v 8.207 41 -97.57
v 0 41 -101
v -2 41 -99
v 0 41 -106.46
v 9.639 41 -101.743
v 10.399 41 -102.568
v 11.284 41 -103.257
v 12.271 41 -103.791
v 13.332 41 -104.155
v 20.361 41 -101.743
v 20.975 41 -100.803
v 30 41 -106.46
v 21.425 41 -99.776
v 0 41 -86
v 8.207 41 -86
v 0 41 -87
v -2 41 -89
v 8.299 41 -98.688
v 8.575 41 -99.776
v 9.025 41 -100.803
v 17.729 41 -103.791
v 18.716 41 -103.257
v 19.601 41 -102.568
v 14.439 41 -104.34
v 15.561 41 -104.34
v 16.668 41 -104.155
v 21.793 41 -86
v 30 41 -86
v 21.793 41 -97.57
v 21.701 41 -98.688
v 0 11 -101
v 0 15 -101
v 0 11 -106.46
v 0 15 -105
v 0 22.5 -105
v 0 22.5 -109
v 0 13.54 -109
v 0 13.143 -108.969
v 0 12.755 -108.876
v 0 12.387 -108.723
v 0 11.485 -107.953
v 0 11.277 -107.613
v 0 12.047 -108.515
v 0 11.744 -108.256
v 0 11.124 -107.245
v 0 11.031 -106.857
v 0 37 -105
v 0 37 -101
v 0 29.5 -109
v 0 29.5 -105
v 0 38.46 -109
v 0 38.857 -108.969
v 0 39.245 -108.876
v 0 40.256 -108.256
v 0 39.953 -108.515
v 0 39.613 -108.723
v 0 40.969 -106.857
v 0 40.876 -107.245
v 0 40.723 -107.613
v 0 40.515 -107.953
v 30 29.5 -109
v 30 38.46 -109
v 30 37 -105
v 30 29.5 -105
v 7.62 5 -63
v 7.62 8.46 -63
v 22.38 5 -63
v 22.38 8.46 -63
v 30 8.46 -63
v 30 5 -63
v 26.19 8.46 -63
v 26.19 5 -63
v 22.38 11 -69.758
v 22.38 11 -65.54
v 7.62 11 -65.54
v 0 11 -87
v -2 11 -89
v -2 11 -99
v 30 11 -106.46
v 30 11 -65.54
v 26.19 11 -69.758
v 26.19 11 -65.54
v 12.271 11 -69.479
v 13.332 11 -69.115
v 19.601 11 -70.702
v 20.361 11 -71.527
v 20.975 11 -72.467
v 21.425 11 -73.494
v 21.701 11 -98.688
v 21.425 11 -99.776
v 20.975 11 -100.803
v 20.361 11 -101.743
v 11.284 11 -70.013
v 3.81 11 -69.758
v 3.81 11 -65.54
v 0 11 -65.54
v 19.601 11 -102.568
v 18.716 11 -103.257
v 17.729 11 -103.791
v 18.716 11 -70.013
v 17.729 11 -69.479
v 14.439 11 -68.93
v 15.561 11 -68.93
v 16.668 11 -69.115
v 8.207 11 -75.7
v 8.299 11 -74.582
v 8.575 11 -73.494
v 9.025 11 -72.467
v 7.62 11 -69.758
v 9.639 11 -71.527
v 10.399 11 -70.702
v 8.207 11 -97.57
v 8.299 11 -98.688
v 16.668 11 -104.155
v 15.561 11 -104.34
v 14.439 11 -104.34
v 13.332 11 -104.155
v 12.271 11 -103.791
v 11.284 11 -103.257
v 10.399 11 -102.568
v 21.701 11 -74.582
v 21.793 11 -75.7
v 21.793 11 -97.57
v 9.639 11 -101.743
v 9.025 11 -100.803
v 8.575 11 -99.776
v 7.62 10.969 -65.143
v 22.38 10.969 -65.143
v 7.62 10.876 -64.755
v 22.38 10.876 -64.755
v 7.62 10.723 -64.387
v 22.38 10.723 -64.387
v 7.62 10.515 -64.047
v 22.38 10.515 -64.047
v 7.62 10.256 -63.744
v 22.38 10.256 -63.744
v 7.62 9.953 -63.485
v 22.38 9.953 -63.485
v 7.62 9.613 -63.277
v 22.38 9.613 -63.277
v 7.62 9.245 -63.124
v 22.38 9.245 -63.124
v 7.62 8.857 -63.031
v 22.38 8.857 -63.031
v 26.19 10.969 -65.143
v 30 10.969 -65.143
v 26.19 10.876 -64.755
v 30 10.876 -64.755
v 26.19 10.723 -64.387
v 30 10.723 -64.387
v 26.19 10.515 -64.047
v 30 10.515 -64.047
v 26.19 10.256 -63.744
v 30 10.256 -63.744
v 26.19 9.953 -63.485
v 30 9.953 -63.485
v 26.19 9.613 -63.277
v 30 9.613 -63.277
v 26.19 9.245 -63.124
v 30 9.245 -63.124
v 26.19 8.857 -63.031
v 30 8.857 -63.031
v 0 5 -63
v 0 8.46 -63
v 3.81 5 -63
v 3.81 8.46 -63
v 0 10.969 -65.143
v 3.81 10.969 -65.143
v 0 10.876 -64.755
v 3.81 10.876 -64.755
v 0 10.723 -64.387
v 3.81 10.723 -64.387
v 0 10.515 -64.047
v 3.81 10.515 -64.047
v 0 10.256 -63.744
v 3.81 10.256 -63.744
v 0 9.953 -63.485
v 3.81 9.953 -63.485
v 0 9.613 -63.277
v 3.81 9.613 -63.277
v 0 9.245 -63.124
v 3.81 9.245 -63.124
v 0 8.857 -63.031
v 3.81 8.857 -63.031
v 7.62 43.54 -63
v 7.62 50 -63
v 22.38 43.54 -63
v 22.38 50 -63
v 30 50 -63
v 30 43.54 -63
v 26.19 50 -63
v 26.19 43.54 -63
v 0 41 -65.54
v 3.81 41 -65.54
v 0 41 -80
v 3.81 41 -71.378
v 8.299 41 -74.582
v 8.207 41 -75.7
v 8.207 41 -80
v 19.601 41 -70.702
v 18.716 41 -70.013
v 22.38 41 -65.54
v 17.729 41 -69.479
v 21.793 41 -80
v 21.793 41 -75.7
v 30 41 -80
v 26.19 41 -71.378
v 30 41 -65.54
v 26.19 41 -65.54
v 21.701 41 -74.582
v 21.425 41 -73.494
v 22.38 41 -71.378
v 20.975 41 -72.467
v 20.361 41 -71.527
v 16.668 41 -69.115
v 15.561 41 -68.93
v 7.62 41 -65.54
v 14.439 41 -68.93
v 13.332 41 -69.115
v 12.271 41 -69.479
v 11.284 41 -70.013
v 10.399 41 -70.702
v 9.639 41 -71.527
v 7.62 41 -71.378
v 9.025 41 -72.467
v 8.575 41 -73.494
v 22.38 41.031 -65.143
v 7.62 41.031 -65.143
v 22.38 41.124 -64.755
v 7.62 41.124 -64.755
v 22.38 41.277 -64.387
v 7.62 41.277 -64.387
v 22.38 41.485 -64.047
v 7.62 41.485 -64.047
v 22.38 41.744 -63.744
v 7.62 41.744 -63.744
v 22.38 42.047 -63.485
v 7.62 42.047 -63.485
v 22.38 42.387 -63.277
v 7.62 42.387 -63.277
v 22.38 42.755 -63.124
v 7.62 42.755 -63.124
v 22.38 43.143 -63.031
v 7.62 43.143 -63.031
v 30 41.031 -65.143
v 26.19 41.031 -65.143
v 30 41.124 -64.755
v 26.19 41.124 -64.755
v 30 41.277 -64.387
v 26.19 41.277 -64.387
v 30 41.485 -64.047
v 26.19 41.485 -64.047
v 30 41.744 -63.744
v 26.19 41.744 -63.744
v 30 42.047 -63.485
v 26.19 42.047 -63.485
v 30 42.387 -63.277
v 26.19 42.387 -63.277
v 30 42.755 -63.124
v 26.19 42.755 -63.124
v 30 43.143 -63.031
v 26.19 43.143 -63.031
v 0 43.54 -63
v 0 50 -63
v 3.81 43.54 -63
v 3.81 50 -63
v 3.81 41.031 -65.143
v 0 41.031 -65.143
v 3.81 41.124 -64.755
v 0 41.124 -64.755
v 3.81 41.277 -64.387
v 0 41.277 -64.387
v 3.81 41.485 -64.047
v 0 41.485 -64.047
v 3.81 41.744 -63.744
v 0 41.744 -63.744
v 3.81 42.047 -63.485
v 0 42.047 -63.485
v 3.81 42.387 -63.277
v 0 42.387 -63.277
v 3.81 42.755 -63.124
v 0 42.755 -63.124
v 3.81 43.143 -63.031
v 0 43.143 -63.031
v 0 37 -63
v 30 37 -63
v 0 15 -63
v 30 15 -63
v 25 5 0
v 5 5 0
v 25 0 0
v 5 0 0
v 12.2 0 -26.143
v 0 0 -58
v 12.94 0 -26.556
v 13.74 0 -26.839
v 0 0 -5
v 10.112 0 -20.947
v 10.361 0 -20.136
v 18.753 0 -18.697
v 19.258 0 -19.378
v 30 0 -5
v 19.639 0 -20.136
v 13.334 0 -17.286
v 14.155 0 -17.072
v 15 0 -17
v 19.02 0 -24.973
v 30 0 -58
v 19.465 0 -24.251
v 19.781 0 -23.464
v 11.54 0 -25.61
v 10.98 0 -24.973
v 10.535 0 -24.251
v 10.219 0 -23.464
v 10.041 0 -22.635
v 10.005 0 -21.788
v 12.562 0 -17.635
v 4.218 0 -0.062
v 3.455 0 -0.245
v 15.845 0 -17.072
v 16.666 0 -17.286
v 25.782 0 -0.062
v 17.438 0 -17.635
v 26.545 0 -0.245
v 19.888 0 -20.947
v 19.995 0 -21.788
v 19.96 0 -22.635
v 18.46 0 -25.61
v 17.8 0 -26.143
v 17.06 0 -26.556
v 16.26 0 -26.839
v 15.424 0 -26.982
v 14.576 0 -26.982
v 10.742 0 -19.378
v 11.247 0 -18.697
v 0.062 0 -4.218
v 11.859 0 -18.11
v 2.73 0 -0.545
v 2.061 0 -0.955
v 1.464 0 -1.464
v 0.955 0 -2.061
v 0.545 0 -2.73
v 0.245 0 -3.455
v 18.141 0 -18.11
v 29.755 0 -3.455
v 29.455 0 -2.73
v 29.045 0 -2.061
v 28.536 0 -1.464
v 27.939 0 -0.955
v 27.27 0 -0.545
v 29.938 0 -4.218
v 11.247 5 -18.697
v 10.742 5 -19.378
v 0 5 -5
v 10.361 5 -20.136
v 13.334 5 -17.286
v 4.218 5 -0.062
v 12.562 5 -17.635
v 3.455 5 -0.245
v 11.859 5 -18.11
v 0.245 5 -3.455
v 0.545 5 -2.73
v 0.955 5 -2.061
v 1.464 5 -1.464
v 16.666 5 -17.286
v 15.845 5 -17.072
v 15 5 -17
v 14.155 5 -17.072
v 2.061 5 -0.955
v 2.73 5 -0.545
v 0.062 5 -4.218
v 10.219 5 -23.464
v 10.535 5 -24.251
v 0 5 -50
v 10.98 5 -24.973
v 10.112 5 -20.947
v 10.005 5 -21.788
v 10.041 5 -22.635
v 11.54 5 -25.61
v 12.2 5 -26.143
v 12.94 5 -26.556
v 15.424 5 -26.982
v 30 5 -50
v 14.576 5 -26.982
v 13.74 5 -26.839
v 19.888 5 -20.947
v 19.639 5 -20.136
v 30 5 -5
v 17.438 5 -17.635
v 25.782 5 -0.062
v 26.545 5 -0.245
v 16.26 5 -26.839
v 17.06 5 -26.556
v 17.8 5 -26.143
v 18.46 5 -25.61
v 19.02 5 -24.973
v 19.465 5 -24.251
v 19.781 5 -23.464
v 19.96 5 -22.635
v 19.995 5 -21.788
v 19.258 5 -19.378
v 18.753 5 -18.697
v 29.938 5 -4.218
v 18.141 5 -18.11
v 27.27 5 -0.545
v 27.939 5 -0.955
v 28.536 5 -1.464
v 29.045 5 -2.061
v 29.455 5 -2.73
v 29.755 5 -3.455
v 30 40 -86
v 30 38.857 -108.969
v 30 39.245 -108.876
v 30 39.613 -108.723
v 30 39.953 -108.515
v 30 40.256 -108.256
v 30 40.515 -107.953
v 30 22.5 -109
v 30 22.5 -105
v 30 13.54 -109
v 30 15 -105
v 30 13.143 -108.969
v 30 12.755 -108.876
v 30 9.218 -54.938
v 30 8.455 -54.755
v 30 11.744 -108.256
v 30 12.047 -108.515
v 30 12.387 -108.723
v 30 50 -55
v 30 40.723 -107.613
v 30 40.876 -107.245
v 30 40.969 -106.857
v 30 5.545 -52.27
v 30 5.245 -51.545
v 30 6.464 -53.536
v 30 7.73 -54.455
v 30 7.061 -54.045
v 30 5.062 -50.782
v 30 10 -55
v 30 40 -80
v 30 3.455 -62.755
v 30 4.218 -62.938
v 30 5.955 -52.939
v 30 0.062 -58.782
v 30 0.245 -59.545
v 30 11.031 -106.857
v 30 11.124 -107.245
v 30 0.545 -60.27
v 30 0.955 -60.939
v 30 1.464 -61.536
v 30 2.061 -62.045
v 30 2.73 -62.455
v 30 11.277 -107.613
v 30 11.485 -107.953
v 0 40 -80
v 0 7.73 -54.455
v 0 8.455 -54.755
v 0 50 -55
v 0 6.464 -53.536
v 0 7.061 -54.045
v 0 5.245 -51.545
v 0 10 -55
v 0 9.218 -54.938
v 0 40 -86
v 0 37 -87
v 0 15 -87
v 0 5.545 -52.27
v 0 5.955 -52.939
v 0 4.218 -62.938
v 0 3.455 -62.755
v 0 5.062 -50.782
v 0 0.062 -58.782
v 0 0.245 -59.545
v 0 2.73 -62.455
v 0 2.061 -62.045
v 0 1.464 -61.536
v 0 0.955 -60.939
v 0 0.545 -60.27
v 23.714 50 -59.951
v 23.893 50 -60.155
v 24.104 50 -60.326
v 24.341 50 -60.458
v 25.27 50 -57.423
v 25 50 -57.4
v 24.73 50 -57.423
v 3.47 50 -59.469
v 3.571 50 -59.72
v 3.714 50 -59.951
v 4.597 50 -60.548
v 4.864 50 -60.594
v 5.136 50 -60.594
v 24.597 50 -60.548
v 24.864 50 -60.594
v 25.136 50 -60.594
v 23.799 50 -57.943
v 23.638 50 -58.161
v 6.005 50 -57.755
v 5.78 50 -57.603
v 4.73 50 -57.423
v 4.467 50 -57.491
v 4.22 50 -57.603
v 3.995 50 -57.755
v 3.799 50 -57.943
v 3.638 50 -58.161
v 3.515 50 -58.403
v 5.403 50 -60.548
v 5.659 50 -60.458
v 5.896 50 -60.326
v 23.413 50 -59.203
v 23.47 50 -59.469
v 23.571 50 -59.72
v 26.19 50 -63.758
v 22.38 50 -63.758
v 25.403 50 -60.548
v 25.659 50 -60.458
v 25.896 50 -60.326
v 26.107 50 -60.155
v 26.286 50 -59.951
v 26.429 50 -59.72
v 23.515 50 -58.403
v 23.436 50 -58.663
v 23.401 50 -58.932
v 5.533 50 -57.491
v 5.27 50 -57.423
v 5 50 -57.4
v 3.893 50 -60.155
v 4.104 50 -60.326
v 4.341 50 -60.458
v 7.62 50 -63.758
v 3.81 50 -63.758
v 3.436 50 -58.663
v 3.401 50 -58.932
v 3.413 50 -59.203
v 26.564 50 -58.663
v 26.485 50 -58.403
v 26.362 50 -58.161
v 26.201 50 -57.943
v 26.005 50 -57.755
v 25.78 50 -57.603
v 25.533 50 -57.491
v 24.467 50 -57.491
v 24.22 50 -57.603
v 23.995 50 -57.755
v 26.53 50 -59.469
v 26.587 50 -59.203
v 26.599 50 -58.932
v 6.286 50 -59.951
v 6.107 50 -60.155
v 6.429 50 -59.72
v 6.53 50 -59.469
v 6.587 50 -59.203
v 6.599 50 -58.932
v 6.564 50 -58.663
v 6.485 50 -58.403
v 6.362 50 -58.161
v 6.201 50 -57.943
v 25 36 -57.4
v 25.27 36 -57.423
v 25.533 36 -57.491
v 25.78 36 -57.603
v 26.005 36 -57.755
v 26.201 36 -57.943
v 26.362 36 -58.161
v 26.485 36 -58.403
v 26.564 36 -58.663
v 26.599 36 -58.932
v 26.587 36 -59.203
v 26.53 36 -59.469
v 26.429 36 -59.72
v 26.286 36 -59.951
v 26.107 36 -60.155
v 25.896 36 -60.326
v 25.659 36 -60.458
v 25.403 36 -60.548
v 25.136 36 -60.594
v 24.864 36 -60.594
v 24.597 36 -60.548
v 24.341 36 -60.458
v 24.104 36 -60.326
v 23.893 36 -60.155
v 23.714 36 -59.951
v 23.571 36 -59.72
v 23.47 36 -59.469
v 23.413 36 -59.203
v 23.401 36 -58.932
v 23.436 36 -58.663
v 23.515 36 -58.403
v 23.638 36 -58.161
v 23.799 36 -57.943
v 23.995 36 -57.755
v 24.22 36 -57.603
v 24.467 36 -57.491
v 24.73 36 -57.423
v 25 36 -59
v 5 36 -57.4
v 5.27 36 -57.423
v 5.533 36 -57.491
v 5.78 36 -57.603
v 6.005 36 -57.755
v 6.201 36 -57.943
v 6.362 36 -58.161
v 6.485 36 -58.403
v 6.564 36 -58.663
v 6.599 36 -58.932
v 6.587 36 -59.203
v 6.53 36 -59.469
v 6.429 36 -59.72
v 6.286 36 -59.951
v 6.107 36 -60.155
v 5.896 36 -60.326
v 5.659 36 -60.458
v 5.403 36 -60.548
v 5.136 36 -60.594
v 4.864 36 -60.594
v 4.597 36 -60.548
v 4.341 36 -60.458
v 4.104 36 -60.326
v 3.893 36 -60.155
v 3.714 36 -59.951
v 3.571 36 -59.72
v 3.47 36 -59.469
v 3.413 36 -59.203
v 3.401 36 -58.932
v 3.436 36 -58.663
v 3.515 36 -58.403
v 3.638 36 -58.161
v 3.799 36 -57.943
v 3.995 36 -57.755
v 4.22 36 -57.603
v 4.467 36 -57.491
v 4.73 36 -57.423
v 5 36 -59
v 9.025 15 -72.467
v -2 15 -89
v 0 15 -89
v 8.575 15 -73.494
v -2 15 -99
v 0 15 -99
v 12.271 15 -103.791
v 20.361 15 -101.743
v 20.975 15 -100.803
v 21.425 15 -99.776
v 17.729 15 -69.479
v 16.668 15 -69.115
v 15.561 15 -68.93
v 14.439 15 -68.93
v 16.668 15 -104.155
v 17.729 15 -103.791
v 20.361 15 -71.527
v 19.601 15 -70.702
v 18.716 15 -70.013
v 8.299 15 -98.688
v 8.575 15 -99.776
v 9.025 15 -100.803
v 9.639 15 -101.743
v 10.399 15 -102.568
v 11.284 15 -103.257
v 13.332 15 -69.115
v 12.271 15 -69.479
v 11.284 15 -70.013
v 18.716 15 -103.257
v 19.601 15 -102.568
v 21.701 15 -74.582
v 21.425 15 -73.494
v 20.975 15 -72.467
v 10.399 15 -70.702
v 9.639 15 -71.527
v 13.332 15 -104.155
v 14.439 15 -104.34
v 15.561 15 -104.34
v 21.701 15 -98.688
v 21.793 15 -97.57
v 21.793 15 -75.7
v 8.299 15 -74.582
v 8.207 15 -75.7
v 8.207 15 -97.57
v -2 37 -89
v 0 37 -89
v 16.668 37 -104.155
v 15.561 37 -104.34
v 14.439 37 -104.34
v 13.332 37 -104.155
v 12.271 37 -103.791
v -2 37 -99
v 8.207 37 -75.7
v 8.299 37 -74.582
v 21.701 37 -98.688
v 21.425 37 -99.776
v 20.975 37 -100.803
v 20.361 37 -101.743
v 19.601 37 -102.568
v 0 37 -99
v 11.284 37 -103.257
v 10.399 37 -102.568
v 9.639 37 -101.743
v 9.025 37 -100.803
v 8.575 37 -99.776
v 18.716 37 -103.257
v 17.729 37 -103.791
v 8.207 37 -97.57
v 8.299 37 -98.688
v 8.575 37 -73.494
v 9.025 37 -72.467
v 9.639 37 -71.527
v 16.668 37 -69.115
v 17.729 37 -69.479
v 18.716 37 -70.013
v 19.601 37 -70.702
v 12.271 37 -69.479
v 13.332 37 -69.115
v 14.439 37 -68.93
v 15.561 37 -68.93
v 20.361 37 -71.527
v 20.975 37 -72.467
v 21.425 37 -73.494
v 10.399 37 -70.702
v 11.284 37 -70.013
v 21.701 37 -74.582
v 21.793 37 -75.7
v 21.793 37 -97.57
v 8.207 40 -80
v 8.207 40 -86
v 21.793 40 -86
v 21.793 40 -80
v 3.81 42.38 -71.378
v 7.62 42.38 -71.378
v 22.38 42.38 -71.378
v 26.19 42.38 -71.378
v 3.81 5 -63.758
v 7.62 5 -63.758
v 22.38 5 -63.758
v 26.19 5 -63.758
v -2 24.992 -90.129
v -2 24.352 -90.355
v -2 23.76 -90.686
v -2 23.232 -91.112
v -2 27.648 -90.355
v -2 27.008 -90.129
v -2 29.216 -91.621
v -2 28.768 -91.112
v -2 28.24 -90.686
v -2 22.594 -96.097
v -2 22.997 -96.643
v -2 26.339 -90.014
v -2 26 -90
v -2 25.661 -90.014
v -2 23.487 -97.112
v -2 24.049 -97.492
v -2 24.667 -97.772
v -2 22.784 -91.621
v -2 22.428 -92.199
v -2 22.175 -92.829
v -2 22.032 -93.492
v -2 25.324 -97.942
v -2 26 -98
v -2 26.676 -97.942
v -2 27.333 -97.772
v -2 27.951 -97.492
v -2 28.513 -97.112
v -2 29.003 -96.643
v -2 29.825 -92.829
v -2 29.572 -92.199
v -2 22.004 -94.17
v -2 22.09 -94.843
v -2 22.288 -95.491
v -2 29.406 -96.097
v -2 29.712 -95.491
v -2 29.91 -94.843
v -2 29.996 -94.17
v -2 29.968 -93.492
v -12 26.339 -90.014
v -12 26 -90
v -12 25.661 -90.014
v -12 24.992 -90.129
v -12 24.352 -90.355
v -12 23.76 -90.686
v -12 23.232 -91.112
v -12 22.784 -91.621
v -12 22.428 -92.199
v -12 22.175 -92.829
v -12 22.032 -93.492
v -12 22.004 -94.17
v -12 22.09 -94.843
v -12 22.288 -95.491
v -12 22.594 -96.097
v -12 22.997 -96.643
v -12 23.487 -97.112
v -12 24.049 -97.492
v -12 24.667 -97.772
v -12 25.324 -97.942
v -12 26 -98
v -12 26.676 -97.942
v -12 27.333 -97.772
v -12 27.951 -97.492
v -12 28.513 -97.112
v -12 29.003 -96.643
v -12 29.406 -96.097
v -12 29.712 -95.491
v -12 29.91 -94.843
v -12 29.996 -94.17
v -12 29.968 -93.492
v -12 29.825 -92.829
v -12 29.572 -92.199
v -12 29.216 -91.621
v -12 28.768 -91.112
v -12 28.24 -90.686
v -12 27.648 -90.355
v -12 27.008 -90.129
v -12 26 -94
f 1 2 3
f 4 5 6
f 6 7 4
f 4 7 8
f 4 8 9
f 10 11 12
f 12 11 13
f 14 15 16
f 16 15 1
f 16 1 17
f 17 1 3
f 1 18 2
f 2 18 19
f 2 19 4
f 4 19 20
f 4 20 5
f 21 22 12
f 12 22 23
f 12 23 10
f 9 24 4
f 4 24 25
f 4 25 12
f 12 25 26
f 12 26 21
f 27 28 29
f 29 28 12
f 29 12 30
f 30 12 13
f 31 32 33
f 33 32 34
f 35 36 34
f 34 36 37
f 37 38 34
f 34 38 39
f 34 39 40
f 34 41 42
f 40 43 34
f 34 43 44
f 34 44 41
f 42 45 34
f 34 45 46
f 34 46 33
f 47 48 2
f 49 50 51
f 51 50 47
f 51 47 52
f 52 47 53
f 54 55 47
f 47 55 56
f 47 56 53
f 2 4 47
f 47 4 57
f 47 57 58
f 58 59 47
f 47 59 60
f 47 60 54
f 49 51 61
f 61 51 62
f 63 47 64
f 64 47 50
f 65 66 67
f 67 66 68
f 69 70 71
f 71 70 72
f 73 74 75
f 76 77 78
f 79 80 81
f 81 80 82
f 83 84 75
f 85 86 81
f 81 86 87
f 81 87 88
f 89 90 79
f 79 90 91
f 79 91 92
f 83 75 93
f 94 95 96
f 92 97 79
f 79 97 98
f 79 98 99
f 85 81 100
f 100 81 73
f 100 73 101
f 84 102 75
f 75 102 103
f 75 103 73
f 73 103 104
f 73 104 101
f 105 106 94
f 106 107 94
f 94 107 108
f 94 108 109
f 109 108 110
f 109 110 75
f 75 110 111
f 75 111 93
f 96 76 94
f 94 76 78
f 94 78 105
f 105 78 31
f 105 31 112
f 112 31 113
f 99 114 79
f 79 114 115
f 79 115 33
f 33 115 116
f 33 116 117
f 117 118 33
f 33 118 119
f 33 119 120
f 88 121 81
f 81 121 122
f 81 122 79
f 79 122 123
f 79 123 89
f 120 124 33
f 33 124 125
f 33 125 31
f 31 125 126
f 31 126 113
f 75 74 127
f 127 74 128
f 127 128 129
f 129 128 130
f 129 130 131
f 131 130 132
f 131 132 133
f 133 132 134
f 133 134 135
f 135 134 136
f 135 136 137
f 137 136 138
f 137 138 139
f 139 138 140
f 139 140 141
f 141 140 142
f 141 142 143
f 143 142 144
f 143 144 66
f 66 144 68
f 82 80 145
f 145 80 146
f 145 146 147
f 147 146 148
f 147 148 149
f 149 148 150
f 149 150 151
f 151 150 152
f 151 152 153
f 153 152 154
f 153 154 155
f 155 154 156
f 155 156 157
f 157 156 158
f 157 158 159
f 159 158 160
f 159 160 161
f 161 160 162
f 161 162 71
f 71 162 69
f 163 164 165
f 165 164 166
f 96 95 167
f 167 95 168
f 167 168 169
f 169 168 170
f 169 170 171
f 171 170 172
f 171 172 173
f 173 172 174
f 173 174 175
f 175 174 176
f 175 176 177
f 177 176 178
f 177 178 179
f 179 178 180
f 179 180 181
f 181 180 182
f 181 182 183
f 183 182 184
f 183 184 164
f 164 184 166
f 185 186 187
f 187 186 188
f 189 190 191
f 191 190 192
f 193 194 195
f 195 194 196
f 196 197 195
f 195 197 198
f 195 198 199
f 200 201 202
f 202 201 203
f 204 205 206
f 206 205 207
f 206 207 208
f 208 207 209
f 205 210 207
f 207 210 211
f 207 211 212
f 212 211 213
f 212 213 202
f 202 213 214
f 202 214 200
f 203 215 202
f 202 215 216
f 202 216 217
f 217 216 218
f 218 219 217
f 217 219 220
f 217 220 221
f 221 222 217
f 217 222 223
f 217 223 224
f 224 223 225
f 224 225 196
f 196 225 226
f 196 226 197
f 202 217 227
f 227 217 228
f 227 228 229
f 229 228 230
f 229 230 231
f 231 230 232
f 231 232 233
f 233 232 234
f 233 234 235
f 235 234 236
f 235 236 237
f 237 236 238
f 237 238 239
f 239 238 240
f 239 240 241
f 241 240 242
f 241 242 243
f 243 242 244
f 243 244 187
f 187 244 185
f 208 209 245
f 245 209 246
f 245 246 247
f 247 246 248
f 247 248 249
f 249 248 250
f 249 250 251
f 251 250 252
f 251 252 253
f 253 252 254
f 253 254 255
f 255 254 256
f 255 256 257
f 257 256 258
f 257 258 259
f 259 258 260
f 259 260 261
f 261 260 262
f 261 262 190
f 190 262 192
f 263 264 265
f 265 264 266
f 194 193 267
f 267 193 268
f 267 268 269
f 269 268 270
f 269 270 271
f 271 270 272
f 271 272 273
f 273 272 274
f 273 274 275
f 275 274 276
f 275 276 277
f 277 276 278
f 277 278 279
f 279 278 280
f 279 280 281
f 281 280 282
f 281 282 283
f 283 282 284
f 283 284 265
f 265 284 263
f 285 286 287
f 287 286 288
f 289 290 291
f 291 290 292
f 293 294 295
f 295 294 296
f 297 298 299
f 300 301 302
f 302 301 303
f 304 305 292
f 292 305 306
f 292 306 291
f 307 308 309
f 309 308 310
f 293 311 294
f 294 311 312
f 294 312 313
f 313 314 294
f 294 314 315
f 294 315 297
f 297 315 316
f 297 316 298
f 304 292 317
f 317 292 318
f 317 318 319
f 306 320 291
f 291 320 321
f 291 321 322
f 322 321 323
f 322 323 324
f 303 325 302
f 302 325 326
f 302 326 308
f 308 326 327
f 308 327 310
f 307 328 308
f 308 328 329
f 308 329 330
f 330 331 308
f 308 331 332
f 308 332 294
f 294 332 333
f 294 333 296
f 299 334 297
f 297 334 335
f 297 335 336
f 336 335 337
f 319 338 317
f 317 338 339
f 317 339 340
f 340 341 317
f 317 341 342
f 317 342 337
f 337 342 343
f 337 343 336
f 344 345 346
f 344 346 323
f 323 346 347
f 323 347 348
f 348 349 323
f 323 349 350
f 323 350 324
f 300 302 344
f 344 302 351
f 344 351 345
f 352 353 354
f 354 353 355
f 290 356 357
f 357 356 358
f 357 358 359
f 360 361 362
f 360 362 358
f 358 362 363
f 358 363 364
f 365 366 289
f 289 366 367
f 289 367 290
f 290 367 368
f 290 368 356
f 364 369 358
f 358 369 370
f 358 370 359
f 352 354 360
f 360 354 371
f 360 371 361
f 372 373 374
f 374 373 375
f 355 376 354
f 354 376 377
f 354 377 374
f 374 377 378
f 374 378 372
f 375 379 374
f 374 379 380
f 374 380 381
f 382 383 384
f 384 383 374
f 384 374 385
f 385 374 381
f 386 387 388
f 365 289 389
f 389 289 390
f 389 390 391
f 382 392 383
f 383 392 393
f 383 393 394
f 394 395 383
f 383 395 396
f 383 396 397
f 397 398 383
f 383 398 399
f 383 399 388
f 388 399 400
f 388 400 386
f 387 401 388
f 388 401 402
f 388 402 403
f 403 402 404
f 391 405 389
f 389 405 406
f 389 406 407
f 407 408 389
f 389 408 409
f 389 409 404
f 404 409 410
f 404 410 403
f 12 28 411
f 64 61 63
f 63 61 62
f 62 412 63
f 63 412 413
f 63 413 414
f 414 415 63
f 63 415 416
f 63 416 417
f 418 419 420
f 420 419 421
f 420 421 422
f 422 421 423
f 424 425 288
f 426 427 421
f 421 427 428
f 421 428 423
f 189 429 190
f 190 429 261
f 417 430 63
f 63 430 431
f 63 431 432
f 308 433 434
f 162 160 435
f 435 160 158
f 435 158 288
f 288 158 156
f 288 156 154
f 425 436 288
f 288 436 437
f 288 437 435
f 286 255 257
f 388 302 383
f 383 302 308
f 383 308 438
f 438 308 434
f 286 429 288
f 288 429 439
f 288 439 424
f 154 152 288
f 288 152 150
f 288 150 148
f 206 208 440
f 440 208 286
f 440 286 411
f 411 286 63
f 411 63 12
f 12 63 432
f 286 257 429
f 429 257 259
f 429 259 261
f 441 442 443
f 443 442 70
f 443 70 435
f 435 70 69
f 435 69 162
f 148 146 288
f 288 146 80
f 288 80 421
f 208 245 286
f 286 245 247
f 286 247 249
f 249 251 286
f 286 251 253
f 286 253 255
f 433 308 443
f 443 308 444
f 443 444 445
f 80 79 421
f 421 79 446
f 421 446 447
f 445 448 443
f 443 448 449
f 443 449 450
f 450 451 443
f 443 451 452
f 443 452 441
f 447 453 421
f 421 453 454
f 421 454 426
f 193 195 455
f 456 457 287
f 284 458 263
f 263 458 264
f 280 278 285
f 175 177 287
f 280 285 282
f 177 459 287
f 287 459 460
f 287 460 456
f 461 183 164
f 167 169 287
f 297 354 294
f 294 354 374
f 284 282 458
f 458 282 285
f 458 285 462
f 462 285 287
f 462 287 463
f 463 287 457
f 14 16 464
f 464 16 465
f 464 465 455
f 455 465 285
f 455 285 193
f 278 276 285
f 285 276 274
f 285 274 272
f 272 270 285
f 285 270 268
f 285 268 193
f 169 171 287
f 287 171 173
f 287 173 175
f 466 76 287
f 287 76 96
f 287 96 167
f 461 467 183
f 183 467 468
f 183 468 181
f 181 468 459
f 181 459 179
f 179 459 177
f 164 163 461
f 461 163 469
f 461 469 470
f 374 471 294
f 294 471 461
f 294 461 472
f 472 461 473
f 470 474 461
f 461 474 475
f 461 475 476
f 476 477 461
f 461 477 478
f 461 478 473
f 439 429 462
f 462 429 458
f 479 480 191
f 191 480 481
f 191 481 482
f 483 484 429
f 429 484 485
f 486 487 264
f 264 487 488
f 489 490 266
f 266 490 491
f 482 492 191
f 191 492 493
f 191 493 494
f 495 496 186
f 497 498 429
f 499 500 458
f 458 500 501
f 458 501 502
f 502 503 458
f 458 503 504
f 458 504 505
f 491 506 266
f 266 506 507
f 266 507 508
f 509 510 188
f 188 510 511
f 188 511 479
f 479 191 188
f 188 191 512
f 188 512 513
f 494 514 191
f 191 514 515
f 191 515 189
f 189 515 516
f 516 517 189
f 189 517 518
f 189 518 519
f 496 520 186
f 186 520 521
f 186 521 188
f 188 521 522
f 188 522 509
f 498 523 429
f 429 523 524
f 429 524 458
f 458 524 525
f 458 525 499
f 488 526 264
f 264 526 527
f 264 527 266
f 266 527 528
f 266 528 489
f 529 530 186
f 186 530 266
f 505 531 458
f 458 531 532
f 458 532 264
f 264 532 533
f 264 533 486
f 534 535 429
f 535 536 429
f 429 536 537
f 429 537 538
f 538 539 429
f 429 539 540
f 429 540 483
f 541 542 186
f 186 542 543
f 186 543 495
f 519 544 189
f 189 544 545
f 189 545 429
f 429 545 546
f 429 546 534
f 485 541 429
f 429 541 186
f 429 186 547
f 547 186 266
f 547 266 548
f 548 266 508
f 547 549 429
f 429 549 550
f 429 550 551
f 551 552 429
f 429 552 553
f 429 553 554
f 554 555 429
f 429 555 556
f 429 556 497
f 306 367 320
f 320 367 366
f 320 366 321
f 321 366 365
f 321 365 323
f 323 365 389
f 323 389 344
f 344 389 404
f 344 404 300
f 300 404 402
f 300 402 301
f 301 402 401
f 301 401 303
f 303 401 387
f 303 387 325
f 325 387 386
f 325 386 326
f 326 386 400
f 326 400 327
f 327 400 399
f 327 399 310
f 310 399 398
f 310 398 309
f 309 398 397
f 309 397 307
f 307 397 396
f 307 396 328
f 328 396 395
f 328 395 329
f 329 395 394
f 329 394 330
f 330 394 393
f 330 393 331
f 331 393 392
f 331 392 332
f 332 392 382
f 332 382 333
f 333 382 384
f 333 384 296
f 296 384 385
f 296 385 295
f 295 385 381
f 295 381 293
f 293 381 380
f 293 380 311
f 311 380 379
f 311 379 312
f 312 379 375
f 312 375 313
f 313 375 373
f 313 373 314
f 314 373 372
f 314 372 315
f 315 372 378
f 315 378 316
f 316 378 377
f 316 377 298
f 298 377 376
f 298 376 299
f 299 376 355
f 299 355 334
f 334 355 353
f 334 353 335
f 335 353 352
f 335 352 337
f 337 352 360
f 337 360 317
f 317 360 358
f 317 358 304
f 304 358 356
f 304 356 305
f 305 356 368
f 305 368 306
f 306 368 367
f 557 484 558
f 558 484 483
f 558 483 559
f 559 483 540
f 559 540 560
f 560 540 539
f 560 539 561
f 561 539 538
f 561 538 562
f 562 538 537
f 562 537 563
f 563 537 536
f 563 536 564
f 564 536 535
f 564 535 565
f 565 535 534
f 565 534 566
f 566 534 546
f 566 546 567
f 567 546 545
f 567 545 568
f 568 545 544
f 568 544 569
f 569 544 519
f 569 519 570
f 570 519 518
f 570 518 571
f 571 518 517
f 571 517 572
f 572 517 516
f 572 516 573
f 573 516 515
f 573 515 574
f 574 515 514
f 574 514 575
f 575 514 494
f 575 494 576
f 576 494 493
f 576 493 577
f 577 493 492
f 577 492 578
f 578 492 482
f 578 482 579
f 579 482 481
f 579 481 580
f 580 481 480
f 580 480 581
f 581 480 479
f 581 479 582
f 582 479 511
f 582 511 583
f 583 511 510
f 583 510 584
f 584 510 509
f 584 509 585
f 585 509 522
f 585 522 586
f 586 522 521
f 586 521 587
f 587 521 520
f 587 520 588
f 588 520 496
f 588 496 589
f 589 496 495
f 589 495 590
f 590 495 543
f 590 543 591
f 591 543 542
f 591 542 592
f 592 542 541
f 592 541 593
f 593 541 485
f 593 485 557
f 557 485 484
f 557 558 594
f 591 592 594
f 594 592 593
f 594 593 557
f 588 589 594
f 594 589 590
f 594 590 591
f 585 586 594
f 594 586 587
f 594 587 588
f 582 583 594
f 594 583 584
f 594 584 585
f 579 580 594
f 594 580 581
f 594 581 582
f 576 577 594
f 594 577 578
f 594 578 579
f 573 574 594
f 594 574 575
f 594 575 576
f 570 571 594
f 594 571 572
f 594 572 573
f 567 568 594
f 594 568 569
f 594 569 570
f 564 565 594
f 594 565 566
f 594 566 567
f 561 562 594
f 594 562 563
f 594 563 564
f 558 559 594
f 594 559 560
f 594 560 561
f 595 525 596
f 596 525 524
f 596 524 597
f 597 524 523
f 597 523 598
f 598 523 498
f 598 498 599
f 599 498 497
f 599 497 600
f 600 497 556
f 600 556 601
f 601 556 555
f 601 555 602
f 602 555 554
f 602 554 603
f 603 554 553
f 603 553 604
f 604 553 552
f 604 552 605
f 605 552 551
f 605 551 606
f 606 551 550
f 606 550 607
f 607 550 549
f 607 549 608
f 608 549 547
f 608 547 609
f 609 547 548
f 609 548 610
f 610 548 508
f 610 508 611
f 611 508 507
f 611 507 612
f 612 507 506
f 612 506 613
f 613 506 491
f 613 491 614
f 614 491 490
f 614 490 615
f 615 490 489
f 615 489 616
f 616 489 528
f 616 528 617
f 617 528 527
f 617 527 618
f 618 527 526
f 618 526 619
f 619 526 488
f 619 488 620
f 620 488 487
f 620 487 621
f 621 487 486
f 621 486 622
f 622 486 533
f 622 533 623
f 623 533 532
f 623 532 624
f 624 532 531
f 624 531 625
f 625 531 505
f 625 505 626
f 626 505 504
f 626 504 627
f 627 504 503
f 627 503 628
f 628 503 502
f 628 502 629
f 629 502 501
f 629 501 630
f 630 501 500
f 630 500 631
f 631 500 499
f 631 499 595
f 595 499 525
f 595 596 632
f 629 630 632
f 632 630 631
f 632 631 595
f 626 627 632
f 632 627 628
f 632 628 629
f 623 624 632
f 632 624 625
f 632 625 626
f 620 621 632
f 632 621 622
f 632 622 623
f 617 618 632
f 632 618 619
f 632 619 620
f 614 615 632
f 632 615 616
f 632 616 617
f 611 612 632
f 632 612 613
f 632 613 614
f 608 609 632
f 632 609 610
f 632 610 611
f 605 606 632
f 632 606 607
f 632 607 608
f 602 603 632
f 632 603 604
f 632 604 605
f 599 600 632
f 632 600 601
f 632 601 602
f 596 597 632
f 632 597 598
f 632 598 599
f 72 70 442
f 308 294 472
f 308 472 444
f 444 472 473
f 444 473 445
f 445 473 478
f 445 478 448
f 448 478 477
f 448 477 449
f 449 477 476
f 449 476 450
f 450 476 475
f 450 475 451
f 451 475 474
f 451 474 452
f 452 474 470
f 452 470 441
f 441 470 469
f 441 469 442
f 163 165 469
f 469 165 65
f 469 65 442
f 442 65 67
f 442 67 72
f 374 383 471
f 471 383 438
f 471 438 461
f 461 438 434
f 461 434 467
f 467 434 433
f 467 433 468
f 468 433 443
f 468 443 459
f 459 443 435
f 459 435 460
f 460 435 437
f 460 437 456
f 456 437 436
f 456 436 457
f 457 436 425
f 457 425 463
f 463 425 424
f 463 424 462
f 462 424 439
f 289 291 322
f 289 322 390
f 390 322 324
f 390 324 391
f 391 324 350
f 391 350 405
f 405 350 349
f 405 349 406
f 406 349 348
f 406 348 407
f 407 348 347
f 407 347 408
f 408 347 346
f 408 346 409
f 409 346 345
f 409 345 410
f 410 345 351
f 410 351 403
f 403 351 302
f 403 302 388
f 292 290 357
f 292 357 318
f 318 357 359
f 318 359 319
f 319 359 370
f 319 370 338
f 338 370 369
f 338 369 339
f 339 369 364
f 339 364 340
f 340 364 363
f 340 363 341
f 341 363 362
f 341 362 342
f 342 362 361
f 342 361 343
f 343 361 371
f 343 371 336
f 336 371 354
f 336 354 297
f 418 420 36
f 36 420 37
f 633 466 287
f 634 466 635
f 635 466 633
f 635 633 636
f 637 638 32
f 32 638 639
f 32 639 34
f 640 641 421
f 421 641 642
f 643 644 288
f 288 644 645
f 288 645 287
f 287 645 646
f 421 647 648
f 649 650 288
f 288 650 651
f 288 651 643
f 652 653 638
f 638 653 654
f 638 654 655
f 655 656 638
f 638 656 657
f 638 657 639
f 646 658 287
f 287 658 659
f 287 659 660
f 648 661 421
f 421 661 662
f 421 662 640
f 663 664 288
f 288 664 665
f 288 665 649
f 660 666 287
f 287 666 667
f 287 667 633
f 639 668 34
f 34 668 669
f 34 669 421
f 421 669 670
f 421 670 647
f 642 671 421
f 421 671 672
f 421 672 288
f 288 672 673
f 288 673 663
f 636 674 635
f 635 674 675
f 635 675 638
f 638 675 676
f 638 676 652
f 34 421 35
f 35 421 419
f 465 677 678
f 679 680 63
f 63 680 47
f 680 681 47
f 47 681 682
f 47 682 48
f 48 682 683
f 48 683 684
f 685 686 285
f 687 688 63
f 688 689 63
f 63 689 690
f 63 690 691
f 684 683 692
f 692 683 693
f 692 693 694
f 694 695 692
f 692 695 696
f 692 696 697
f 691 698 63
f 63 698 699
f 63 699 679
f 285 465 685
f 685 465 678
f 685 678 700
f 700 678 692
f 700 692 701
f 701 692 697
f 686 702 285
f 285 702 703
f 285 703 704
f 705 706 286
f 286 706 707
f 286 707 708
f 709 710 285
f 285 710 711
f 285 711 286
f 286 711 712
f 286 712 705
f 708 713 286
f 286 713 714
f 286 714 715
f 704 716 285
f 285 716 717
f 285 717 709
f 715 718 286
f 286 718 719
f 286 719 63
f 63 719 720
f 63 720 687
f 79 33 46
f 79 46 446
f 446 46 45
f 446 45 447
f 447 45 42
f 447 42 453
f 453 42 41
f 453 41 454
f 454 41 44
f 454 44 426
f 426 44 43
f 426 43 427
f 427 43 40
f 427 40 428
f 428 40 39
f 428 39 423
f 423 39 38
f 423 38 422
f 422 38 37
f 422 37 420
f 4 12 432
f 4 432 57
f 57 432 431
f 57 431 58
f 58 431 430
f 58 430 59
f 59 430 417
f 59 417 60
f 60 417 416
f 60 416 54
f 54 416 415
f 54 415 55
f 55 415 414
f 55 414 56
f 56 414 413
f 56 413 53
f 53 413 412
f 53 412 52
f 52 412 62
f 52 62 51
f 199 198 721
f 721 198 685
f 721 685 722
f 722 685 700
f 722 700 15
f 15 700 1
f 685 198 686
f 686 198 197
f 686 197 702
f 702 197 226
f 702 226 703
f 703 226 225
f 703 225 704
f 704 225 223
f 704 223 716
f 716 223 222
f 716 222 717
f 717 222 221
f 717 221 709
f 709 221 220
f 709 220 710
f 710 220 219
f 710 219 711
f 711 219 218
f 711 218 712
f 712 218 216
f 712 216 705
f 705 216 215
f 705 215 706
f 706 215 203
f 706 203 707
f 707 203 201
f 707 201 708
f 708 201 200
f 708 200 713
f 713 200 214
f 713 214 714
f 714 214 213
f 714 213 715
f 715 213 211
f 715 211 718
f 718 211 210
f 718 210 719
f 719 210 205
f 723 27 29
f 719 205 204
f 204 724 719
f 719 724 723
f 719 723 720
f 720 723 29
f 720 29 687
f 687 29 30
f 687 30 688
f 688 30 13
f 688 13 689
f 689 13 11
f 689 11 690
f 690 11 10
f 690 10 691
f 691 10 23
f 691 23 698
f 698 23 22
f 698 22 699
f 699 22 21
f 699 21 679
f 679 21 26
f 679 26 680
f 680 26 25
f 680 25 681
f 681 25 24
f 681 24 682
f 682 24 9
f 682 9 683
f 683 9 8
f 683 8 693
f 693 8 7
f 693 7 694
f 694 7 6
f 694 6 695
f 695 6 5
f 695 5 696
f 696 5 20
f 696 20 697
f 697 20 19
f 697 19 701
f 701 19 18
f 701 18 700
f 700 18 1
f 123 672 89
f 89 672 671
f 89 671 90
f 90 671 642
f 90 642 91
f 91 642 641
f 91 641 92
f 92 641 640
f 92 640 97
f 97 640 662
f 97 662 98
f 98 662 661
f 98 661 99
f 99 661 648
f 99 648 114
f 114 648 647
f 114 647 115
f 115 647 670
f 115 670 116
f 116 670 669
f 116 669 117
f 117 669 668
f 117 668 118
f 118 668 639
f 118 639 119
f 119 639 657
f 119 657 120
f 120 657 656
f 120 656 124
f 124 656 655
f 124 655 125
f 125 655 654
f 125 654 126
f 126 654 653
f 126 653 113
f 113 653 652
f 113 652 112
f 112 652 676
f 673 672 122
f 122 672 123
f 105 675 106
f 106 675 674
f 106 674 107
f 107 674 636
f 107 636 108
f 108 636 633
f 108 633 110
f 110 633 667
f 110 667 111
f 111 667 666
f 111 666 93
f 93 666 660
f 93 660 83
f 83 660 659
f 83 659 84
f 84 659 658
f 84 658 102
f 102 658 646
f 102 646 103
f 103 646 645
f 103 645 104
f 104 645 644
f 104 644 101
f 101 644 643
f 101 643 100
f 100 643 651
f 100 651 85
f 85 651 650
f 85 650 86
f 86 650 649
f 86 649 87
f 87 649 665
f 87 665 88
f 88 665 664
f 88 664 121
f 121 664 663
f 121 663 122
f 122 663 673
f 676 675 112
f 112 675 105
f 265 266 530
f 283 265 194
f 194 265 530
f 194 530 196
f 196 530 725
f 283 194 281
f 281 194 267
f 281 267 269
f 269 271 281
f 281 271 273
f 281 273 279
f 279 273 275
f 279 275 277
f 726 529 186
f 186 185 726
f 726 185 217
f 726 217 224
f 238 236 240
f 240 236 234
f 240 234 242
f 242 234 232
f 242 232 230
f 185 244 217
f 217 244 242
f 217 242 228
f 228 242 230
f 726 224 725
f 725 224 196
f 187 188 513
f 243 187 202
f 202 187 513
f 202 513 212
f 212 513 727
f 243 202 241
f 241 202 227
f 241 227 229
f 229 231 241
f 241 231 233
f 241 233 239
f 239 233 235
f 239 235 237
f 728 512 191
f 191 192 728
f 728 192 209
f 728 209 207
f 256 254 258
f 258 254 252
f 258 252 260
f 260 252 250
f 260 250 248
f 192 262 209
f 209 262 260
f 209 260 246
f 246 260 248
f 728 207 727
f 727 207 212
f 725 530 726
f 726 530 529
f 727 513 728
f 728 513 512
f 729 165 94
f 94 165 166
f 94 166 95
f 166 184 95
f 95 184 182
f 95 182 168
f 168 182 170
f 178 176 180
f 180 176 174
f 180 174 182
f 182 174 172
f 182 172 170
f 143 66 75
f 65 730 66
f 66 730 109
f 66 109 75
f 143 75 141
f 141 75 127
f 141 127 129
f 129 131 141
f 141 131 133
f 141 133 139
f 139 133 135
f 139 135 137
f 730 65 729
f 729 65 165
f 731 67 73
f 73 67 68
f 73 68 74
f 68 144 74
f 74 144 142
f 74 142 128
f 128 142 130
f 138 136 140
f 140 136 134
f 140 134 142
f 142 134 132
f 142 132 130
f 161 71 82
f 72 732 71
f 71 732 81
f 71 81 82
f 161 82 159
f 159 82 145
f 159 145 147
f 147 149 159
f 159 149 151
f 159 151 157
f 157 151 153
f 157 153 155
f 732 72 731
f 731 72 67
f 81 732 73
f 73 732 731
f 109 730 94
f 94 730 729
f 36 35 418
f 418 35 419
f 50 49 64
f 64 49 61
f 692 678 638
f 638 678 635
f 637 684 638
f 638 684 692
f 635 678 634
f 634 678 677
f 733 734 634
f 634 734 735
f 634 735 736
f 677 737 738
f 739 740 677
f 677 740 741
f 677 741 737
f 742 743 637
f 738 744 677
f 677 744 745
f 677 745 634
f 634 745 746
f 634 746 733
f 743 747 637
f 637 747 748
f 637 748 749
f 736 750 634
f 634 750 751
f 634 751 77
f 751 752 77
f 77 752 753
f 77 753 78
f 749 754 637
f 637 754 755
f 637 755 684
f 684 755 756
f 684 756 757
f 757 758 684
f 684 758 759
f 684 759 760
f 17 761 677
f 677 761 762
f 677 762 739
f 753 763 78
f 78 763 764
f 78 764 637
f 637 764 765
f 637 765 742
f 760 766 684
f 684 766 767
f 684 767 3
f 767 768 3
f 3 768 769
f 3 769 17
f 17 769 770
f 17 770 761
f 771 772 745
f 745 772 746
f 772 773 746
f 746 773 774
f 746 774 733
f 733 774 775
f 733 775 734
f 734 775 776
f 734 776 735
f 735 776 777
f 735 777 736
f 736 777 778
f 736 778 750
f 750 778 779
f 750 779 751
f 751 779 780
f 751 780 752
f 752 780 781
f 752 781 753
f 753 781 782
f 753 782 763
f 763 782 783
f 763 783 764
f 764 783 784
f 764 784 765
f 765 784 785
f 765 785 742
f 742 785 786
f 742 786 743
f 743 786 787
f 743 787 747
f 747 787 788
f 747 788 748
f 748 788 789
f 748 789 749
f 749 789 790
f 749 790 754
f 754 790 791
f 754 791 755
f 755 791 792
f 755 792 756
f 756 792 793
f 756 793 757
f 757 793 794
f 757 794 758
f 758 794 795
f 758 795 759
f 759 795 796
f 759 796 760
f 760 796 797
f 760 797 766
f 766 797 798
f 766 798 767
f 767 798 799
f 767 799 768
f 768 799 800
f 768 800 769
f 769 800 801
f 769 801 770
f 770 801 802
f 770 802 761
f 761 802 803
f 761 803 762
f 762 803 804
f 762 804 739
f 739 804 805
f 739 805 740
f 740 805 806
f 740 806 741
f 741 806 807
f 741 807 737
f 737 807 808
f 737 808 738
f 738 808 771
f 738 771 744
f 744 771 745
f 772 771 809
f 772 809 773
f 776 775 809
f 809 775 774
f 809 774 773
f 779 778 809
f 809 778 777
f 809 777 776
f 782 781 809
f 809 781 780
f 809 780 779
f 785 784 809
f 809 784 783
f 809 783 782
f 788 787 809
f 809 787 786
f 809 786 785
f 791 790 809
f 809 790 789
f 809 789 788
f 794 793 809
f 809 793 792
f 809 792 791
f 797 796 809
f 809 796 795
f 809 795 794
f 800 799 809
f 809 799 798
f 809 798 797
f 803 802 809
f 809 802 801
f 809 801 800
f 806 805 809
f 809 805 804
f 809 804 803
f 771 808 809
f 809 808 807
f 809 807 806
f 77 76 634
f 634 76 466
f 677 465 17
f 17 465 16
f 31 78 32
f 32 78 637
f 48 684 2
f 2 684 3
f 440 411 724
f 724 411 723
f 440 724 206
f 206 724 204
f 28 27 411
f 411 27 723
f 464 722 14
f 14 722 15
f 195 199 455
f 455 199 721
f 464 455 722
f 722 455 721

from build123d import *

# Parameters (mm, degrees)
SKETCH1_W           = 63
SKETCH1_H           = 5
BOSS_EXTRUDE1_DEPTH = 30
SKETCH2_W           = 30
SKETCH2_H           = 8
BOSS_EXTRUDE2_DEPTH = 45
SKETCH3_R           = 5
CUT_EXTRUDE1_DEPTH  = 84.030115019
SKETCH5_R           = 1.6
CUT_EXTRUDE3_DEPTH  = 14
FILLET1_R           = 5
BOSS_EXTRUDE3_DEPTH = 30
FILLET2_R           = 2.54
CUT_EXTRUDE5_DEPTH  = 121.258055863
BOSS_EXTRUDE4_REACH = 122.258
SKETCH9_W           = 3.81
SKETCH9_H           = 8.378131559
CHAMFER1_SIZE       = 7.62
SKETCH10_W          = 3.81
SKETCH10_H          = 8.378131559
BOSS_EXTRUDE5_DEPTH = 6
CHAMFER2_SIZE       = 7.62
SKETCH11_W          = 4
SKETCH11_H          = 7
CUT_EXTRUDE6_DEPTH  = 124.616341962
SKETCH13_W          = 10
SKETCH13_H          = 30
BOSS_EXTRUDE6_DEPTH = 2
SKETCH14_R          = 4
BOSS_EXTRUDE7_DEPTH = 10
CHAMFER3_SIZE       = 2
SKETCH15_W          = 30
SKETCH15_H          = 6
CUT_EXTRUDE7_DEPTH  = 1


# Some blends are built 0.0001 mm under size
with BuildPart() as part:
    # Sketch1 → Boss-Extrude1 (new body)
    with BuildSketch(Plane(origin=(0, 0, 0), x_dir=(0, 0, -1), z_dir=(1, 0, 0))):
        with Locations((31.5, 2.5)):
            Rectangle(SKETCH1_W, SKETCH1_H)
    extrude(amount=BOSS_EXTRUDE1_DEPTH)

    # Sketch2 → Boss-Extrude2 (add)
    with BuildSketch(Plane(origin=(0, 5, 0), x_dir=(1, 0, 0), z_dir=(0, 1, 0))):
        with Locations((15, 59)):
            Rectangle(SKETCH2_W, SKETCH2_H)
    extrude(amount=BOSS_EXTRUDE2_DEPTH)

    # Sketch3 → Cut-Extrude1 (cut, through all)
    with BuildSketch(Plane(origin=(0, 5, 0), x_dir=(1, 0, 0), z_dir=(0, 1, 0))):
        with Locations(Location((15, 22, 0), (0, 0, 270))):
            Circle(SKETCH3_R)
    extrude(amount=-CUT_EXTRUDE1_DEPTH, mode=Mode.SUBTRACT)

    # Sketch5 → Cut-Extrude3 (cut)
    with BuildSketch(Plane(origin=(0, 50, 0), x_dir=(1, 0, 0), z_dir=(0, 1, 0))):
        with Locations(Location((5, 59, 0), (0, 0, 270))):
            Circle(SKETCH5_R)
        with Locations(Location((25, 59, 0), (0, 0, 270))):
            Circle(SKETCH5_R)
    extrude(amount=-CUT_EXTRUDE3_DEPTH, mode=Mode.SUBTRACT)

    # Fillet1
    fillet1_edges = [part.edges().sort_by_distance(p)[0] for p in [
        (15, 5, -55),
        (30, 2.5, 0),
        (0, 2.5, 0),
        (15, 0, -63),
    ]]
    fillet(fillet1_edges, radius=FILLET1_R)

    # Sketch6 → Boss-Extrude3 (add)
    with BuildSketch(Plane(origin=(30, 0, 0), x_dir=(0, 0, -1), z_dir=(1, 0, 0))):
        Polygon((63, 41), (63, 37), (105, 37), (105, 15), (63, 15), (63, 11), (109, 11), (109, 41), align=None)
    extrude(amount=-BOSS_EXTRUDE3_DEPTH)

    # Fillet2
    fillet2_edges = [part.edges().sort_by_distance(p)[0] for p in [
        (15, 41, -109),
        (15, 11, -109),
        (15, 11, -63),
        (15, 41, -63),
    ]]
    fillet(fillet2_edges, radius=FILLET2_R)

    # Sketch8 → Cut-Extrude5 (cut, through all)
    with BuildSketch(Plane(origin=(0, 41, 0), x_dir=(1, 0, 0), z_dir=(0, 1, 0))):
        with BuildLine():
            Line((21.793359881, 97.57), (21.793359881, 75.7))
            ThreePointArc((21.793359881, 75.7), (15, 68.906640119), (8.206640119, 75.7))
            Line((8.206640119, 75.7), (8.206640119, 97.57))
            ThreePointArc((8.206640119, 97.57), (15, 104.363359881), (21.793359881, 97.57))
        make_face()
    extrude(amount=-CUT_EXTRUDE5_DEPTH, mode=Mode.SUBTRACT)

    # Boss-Extrude4: up to this face of the body (flat: up to its plane)
    boss_extrude4_end = Plane(part.part.faces().sort_by_distance((15, 50, -59))[0])
    # Sketch9 → Boss-Extrude4 (add, up to the picked face)
    with BuildSketch(Plane(origin=(0, 41, 0), x_dir=(1, 0, 0), z_dir=(0, 1, 0)), mode=Mode.PRIVATE) as boss_extrude4_sk1:
        with Locations((5.715, 67.18906578)):
            Rectangle(SKETCH9_W, SKETCH9_H)
    boss_extrude4_tool1 = split(extrude(boss_extrude4_sk1.sketch, amount=BOSS_EXTRUDE4_REACH, mode=Mode.PRIVATE), bisect_by=boss_extrude4_end, keep=Keep.BOTH, mode=Mode.PRIVATE)
    # Sketch9 → Boss-Extrude4 (add, up to the picked face)
    with BuildSketch(Plane(origin=(0, 41, 0), x_dir=(1, 0, 0), z_dir=(0, 1, 0)), mode=Mode.PRIVATE) as boss_extrude4_sk2:
        with Locations((24.285, 67.18906578)):
            Rectangle(SKETCH9_W, SKETCH9_H)
    boss_extrude4_tool2 = split(extrude(boss_extrude4_sk2.sketch, amount=BOSS_EXTRUDE4_REACH, mode=Mode.PRIVATE), bisect_by=boss_extrude4_end, keep=Keep.BOTH, mode=Mode.PRIVATE)
    add(boss_extrude4_tool1.solids().sort_by(Axis((5.715, 41, -67.189066), (0, 1, 0)))[0])
    add(boss_extrude4_tool2.solids().sort_by(Axis((24.285, 41, -67.189066), (0, 1, 0)))[0])

    # Chamfer1
    chamfer1_edges = [part.edges().sort_by_distance(p)[0] for p in [
        (5.715, 50, -71.378131559),
        (24.285, 50, -71.378131559),
    ]]
    chamfer(chamfer1_edges, length=CHAMFER1_SIZE)

    # Sketch10 → Boss-Extrude5 (add)
    with BuildSketch(Plane.XZ.offset(-11)):
        with Locations((5.715, -67.18906578)):
            Rectangle(SKETCH10_W, SKETCH10_H)
        with Locations((24.285, -67.18906578)):
            Rectangle(SKETCH10_W, SKETCH10_H)
    extrude(amount=BOSS_EXTRUDE5_DEPTH)

    # Chamfer2
    # the kernel refuses this chamfer: 7.62 mm, written as the material it takes off along each edge
    with BuildSketch(Plane(origin=(45.786224368, 5, -71.378131559), x_dir=(0, -0.027495876610586386, 0.9996219169112968), z_dir=(-1, 0, 0))) as chamfer2_piece_1_section:
        Polygon((CHAMFER2_SIZE * 0.999621916911, CHAMFER2_SIZE * 0.0274958766106), (-CHAMFER2_SIZE * 0.0274958766106, CHAMFER2_SIZE * 0.999621916911), (0, 0), align=None)
    chamfer2_piece_1 = extrude(amount=43.002448737, mode=Mode.PRIVATE)
    chamfer2_piece_1 = split(chamfer2_piece_1, bisect_by=Plane(origin=(24.285, 11, -68.732360766), z_dir=(0, -1, 0)), keep=Keep.TOP, mode=Mode.PRIVATE)
    add(chamfer2_piece_1, mode=Mode.SUBTRACT)
    with BuildSketch(Plane(origin=(27.216224368, 5, -71.378131559), x_dir=(0, -0.027495876610586386, 0.9996219169112968), z_dir=(-1, 0, 0))) as chamfer2_piece_2_section:
        Polygon((CHAMFER2_SIZE * 0.999621916911, CHAMFER2_SIZE * 0.0274958766106), (-CHAMFER2_SIZE * 0.0274958766106, CHAMFER2_SIZE * 0.999621916911), (0, 0), align=None)
    chamfer2_piece_2 = extrude(amount=43.002448737, mode=Mode.PRIVATE)
    chamfer2_piece_2 = split(chamfer2_piece_2, bisect_by=Plane(origin=(5.715, 11, -68.732360766), z_dir=(0, -1, 0)), keep=Keep.TOP, mode=Mode.PRIVATE)
    add(chamfer2_piece_2, mode=Mode.SUBTRACT)

    # Sketch11 → Cut-Extrude6 (cut, through all)
    with BuildSketch(Plane(origin=(30, 0, 0), x_dir=(0, 0, -1), z_dir=(1, 0, 0))):
        with Locations((107, 26)):
            Rectangle(SKETCH11_W, SKETCH11_H)
    extrude(amount=-CUT_EXTRUDE6_DEPTH, mode=Mode.SUBTRACT)

    # Sketch13 → Boss-Extrude6 (add)
    with BuildSketch(Plane.ZY):
        with Locations((-94, 26)):
            Rectangle(SKETCH13_W, SKETCH13_H)
    extrude(amount=BOSS_EXTRUDE6_DEPTH)

    # Sketch14 → Boss-Extrude7 (add)
    with BuildSketch(Plane.ZY.offset(2)):
        with Locations((-94, 26)):
            Circle(SKETCH14_R)
    extrude(amount=BOSS_EXTRUDE7_DEPTH)

    # Chamfer3
    chamfer3_edges = [part.edges().sort_by_distance(p)[0] for p in [
        (0, 13, -89),
        (0, 39, -89),
        (0, 13, -99),
        (0, 39, -99),
    ]]
    chamfer(chamfer3_edges, length=CHAMFER3_SIZE - 0.0001)  # a hair under: the kernel refuses the full size

    # Sketch15 → Cut-Extrude7 (cut)
    with BuildSketch(Plane(origin=(0, 41, 0), x_dir=(1, 0, 0), z_dir=(0, 1, 0))):
        with Locations((15, 83)):
            Rectangle(SKETCH15_W, SKETCH15_H)
    extrude(amount=-CUT_EXTRUDE7_DEPTH, mode=Mode.SUBTRACT)


solid = part.part
